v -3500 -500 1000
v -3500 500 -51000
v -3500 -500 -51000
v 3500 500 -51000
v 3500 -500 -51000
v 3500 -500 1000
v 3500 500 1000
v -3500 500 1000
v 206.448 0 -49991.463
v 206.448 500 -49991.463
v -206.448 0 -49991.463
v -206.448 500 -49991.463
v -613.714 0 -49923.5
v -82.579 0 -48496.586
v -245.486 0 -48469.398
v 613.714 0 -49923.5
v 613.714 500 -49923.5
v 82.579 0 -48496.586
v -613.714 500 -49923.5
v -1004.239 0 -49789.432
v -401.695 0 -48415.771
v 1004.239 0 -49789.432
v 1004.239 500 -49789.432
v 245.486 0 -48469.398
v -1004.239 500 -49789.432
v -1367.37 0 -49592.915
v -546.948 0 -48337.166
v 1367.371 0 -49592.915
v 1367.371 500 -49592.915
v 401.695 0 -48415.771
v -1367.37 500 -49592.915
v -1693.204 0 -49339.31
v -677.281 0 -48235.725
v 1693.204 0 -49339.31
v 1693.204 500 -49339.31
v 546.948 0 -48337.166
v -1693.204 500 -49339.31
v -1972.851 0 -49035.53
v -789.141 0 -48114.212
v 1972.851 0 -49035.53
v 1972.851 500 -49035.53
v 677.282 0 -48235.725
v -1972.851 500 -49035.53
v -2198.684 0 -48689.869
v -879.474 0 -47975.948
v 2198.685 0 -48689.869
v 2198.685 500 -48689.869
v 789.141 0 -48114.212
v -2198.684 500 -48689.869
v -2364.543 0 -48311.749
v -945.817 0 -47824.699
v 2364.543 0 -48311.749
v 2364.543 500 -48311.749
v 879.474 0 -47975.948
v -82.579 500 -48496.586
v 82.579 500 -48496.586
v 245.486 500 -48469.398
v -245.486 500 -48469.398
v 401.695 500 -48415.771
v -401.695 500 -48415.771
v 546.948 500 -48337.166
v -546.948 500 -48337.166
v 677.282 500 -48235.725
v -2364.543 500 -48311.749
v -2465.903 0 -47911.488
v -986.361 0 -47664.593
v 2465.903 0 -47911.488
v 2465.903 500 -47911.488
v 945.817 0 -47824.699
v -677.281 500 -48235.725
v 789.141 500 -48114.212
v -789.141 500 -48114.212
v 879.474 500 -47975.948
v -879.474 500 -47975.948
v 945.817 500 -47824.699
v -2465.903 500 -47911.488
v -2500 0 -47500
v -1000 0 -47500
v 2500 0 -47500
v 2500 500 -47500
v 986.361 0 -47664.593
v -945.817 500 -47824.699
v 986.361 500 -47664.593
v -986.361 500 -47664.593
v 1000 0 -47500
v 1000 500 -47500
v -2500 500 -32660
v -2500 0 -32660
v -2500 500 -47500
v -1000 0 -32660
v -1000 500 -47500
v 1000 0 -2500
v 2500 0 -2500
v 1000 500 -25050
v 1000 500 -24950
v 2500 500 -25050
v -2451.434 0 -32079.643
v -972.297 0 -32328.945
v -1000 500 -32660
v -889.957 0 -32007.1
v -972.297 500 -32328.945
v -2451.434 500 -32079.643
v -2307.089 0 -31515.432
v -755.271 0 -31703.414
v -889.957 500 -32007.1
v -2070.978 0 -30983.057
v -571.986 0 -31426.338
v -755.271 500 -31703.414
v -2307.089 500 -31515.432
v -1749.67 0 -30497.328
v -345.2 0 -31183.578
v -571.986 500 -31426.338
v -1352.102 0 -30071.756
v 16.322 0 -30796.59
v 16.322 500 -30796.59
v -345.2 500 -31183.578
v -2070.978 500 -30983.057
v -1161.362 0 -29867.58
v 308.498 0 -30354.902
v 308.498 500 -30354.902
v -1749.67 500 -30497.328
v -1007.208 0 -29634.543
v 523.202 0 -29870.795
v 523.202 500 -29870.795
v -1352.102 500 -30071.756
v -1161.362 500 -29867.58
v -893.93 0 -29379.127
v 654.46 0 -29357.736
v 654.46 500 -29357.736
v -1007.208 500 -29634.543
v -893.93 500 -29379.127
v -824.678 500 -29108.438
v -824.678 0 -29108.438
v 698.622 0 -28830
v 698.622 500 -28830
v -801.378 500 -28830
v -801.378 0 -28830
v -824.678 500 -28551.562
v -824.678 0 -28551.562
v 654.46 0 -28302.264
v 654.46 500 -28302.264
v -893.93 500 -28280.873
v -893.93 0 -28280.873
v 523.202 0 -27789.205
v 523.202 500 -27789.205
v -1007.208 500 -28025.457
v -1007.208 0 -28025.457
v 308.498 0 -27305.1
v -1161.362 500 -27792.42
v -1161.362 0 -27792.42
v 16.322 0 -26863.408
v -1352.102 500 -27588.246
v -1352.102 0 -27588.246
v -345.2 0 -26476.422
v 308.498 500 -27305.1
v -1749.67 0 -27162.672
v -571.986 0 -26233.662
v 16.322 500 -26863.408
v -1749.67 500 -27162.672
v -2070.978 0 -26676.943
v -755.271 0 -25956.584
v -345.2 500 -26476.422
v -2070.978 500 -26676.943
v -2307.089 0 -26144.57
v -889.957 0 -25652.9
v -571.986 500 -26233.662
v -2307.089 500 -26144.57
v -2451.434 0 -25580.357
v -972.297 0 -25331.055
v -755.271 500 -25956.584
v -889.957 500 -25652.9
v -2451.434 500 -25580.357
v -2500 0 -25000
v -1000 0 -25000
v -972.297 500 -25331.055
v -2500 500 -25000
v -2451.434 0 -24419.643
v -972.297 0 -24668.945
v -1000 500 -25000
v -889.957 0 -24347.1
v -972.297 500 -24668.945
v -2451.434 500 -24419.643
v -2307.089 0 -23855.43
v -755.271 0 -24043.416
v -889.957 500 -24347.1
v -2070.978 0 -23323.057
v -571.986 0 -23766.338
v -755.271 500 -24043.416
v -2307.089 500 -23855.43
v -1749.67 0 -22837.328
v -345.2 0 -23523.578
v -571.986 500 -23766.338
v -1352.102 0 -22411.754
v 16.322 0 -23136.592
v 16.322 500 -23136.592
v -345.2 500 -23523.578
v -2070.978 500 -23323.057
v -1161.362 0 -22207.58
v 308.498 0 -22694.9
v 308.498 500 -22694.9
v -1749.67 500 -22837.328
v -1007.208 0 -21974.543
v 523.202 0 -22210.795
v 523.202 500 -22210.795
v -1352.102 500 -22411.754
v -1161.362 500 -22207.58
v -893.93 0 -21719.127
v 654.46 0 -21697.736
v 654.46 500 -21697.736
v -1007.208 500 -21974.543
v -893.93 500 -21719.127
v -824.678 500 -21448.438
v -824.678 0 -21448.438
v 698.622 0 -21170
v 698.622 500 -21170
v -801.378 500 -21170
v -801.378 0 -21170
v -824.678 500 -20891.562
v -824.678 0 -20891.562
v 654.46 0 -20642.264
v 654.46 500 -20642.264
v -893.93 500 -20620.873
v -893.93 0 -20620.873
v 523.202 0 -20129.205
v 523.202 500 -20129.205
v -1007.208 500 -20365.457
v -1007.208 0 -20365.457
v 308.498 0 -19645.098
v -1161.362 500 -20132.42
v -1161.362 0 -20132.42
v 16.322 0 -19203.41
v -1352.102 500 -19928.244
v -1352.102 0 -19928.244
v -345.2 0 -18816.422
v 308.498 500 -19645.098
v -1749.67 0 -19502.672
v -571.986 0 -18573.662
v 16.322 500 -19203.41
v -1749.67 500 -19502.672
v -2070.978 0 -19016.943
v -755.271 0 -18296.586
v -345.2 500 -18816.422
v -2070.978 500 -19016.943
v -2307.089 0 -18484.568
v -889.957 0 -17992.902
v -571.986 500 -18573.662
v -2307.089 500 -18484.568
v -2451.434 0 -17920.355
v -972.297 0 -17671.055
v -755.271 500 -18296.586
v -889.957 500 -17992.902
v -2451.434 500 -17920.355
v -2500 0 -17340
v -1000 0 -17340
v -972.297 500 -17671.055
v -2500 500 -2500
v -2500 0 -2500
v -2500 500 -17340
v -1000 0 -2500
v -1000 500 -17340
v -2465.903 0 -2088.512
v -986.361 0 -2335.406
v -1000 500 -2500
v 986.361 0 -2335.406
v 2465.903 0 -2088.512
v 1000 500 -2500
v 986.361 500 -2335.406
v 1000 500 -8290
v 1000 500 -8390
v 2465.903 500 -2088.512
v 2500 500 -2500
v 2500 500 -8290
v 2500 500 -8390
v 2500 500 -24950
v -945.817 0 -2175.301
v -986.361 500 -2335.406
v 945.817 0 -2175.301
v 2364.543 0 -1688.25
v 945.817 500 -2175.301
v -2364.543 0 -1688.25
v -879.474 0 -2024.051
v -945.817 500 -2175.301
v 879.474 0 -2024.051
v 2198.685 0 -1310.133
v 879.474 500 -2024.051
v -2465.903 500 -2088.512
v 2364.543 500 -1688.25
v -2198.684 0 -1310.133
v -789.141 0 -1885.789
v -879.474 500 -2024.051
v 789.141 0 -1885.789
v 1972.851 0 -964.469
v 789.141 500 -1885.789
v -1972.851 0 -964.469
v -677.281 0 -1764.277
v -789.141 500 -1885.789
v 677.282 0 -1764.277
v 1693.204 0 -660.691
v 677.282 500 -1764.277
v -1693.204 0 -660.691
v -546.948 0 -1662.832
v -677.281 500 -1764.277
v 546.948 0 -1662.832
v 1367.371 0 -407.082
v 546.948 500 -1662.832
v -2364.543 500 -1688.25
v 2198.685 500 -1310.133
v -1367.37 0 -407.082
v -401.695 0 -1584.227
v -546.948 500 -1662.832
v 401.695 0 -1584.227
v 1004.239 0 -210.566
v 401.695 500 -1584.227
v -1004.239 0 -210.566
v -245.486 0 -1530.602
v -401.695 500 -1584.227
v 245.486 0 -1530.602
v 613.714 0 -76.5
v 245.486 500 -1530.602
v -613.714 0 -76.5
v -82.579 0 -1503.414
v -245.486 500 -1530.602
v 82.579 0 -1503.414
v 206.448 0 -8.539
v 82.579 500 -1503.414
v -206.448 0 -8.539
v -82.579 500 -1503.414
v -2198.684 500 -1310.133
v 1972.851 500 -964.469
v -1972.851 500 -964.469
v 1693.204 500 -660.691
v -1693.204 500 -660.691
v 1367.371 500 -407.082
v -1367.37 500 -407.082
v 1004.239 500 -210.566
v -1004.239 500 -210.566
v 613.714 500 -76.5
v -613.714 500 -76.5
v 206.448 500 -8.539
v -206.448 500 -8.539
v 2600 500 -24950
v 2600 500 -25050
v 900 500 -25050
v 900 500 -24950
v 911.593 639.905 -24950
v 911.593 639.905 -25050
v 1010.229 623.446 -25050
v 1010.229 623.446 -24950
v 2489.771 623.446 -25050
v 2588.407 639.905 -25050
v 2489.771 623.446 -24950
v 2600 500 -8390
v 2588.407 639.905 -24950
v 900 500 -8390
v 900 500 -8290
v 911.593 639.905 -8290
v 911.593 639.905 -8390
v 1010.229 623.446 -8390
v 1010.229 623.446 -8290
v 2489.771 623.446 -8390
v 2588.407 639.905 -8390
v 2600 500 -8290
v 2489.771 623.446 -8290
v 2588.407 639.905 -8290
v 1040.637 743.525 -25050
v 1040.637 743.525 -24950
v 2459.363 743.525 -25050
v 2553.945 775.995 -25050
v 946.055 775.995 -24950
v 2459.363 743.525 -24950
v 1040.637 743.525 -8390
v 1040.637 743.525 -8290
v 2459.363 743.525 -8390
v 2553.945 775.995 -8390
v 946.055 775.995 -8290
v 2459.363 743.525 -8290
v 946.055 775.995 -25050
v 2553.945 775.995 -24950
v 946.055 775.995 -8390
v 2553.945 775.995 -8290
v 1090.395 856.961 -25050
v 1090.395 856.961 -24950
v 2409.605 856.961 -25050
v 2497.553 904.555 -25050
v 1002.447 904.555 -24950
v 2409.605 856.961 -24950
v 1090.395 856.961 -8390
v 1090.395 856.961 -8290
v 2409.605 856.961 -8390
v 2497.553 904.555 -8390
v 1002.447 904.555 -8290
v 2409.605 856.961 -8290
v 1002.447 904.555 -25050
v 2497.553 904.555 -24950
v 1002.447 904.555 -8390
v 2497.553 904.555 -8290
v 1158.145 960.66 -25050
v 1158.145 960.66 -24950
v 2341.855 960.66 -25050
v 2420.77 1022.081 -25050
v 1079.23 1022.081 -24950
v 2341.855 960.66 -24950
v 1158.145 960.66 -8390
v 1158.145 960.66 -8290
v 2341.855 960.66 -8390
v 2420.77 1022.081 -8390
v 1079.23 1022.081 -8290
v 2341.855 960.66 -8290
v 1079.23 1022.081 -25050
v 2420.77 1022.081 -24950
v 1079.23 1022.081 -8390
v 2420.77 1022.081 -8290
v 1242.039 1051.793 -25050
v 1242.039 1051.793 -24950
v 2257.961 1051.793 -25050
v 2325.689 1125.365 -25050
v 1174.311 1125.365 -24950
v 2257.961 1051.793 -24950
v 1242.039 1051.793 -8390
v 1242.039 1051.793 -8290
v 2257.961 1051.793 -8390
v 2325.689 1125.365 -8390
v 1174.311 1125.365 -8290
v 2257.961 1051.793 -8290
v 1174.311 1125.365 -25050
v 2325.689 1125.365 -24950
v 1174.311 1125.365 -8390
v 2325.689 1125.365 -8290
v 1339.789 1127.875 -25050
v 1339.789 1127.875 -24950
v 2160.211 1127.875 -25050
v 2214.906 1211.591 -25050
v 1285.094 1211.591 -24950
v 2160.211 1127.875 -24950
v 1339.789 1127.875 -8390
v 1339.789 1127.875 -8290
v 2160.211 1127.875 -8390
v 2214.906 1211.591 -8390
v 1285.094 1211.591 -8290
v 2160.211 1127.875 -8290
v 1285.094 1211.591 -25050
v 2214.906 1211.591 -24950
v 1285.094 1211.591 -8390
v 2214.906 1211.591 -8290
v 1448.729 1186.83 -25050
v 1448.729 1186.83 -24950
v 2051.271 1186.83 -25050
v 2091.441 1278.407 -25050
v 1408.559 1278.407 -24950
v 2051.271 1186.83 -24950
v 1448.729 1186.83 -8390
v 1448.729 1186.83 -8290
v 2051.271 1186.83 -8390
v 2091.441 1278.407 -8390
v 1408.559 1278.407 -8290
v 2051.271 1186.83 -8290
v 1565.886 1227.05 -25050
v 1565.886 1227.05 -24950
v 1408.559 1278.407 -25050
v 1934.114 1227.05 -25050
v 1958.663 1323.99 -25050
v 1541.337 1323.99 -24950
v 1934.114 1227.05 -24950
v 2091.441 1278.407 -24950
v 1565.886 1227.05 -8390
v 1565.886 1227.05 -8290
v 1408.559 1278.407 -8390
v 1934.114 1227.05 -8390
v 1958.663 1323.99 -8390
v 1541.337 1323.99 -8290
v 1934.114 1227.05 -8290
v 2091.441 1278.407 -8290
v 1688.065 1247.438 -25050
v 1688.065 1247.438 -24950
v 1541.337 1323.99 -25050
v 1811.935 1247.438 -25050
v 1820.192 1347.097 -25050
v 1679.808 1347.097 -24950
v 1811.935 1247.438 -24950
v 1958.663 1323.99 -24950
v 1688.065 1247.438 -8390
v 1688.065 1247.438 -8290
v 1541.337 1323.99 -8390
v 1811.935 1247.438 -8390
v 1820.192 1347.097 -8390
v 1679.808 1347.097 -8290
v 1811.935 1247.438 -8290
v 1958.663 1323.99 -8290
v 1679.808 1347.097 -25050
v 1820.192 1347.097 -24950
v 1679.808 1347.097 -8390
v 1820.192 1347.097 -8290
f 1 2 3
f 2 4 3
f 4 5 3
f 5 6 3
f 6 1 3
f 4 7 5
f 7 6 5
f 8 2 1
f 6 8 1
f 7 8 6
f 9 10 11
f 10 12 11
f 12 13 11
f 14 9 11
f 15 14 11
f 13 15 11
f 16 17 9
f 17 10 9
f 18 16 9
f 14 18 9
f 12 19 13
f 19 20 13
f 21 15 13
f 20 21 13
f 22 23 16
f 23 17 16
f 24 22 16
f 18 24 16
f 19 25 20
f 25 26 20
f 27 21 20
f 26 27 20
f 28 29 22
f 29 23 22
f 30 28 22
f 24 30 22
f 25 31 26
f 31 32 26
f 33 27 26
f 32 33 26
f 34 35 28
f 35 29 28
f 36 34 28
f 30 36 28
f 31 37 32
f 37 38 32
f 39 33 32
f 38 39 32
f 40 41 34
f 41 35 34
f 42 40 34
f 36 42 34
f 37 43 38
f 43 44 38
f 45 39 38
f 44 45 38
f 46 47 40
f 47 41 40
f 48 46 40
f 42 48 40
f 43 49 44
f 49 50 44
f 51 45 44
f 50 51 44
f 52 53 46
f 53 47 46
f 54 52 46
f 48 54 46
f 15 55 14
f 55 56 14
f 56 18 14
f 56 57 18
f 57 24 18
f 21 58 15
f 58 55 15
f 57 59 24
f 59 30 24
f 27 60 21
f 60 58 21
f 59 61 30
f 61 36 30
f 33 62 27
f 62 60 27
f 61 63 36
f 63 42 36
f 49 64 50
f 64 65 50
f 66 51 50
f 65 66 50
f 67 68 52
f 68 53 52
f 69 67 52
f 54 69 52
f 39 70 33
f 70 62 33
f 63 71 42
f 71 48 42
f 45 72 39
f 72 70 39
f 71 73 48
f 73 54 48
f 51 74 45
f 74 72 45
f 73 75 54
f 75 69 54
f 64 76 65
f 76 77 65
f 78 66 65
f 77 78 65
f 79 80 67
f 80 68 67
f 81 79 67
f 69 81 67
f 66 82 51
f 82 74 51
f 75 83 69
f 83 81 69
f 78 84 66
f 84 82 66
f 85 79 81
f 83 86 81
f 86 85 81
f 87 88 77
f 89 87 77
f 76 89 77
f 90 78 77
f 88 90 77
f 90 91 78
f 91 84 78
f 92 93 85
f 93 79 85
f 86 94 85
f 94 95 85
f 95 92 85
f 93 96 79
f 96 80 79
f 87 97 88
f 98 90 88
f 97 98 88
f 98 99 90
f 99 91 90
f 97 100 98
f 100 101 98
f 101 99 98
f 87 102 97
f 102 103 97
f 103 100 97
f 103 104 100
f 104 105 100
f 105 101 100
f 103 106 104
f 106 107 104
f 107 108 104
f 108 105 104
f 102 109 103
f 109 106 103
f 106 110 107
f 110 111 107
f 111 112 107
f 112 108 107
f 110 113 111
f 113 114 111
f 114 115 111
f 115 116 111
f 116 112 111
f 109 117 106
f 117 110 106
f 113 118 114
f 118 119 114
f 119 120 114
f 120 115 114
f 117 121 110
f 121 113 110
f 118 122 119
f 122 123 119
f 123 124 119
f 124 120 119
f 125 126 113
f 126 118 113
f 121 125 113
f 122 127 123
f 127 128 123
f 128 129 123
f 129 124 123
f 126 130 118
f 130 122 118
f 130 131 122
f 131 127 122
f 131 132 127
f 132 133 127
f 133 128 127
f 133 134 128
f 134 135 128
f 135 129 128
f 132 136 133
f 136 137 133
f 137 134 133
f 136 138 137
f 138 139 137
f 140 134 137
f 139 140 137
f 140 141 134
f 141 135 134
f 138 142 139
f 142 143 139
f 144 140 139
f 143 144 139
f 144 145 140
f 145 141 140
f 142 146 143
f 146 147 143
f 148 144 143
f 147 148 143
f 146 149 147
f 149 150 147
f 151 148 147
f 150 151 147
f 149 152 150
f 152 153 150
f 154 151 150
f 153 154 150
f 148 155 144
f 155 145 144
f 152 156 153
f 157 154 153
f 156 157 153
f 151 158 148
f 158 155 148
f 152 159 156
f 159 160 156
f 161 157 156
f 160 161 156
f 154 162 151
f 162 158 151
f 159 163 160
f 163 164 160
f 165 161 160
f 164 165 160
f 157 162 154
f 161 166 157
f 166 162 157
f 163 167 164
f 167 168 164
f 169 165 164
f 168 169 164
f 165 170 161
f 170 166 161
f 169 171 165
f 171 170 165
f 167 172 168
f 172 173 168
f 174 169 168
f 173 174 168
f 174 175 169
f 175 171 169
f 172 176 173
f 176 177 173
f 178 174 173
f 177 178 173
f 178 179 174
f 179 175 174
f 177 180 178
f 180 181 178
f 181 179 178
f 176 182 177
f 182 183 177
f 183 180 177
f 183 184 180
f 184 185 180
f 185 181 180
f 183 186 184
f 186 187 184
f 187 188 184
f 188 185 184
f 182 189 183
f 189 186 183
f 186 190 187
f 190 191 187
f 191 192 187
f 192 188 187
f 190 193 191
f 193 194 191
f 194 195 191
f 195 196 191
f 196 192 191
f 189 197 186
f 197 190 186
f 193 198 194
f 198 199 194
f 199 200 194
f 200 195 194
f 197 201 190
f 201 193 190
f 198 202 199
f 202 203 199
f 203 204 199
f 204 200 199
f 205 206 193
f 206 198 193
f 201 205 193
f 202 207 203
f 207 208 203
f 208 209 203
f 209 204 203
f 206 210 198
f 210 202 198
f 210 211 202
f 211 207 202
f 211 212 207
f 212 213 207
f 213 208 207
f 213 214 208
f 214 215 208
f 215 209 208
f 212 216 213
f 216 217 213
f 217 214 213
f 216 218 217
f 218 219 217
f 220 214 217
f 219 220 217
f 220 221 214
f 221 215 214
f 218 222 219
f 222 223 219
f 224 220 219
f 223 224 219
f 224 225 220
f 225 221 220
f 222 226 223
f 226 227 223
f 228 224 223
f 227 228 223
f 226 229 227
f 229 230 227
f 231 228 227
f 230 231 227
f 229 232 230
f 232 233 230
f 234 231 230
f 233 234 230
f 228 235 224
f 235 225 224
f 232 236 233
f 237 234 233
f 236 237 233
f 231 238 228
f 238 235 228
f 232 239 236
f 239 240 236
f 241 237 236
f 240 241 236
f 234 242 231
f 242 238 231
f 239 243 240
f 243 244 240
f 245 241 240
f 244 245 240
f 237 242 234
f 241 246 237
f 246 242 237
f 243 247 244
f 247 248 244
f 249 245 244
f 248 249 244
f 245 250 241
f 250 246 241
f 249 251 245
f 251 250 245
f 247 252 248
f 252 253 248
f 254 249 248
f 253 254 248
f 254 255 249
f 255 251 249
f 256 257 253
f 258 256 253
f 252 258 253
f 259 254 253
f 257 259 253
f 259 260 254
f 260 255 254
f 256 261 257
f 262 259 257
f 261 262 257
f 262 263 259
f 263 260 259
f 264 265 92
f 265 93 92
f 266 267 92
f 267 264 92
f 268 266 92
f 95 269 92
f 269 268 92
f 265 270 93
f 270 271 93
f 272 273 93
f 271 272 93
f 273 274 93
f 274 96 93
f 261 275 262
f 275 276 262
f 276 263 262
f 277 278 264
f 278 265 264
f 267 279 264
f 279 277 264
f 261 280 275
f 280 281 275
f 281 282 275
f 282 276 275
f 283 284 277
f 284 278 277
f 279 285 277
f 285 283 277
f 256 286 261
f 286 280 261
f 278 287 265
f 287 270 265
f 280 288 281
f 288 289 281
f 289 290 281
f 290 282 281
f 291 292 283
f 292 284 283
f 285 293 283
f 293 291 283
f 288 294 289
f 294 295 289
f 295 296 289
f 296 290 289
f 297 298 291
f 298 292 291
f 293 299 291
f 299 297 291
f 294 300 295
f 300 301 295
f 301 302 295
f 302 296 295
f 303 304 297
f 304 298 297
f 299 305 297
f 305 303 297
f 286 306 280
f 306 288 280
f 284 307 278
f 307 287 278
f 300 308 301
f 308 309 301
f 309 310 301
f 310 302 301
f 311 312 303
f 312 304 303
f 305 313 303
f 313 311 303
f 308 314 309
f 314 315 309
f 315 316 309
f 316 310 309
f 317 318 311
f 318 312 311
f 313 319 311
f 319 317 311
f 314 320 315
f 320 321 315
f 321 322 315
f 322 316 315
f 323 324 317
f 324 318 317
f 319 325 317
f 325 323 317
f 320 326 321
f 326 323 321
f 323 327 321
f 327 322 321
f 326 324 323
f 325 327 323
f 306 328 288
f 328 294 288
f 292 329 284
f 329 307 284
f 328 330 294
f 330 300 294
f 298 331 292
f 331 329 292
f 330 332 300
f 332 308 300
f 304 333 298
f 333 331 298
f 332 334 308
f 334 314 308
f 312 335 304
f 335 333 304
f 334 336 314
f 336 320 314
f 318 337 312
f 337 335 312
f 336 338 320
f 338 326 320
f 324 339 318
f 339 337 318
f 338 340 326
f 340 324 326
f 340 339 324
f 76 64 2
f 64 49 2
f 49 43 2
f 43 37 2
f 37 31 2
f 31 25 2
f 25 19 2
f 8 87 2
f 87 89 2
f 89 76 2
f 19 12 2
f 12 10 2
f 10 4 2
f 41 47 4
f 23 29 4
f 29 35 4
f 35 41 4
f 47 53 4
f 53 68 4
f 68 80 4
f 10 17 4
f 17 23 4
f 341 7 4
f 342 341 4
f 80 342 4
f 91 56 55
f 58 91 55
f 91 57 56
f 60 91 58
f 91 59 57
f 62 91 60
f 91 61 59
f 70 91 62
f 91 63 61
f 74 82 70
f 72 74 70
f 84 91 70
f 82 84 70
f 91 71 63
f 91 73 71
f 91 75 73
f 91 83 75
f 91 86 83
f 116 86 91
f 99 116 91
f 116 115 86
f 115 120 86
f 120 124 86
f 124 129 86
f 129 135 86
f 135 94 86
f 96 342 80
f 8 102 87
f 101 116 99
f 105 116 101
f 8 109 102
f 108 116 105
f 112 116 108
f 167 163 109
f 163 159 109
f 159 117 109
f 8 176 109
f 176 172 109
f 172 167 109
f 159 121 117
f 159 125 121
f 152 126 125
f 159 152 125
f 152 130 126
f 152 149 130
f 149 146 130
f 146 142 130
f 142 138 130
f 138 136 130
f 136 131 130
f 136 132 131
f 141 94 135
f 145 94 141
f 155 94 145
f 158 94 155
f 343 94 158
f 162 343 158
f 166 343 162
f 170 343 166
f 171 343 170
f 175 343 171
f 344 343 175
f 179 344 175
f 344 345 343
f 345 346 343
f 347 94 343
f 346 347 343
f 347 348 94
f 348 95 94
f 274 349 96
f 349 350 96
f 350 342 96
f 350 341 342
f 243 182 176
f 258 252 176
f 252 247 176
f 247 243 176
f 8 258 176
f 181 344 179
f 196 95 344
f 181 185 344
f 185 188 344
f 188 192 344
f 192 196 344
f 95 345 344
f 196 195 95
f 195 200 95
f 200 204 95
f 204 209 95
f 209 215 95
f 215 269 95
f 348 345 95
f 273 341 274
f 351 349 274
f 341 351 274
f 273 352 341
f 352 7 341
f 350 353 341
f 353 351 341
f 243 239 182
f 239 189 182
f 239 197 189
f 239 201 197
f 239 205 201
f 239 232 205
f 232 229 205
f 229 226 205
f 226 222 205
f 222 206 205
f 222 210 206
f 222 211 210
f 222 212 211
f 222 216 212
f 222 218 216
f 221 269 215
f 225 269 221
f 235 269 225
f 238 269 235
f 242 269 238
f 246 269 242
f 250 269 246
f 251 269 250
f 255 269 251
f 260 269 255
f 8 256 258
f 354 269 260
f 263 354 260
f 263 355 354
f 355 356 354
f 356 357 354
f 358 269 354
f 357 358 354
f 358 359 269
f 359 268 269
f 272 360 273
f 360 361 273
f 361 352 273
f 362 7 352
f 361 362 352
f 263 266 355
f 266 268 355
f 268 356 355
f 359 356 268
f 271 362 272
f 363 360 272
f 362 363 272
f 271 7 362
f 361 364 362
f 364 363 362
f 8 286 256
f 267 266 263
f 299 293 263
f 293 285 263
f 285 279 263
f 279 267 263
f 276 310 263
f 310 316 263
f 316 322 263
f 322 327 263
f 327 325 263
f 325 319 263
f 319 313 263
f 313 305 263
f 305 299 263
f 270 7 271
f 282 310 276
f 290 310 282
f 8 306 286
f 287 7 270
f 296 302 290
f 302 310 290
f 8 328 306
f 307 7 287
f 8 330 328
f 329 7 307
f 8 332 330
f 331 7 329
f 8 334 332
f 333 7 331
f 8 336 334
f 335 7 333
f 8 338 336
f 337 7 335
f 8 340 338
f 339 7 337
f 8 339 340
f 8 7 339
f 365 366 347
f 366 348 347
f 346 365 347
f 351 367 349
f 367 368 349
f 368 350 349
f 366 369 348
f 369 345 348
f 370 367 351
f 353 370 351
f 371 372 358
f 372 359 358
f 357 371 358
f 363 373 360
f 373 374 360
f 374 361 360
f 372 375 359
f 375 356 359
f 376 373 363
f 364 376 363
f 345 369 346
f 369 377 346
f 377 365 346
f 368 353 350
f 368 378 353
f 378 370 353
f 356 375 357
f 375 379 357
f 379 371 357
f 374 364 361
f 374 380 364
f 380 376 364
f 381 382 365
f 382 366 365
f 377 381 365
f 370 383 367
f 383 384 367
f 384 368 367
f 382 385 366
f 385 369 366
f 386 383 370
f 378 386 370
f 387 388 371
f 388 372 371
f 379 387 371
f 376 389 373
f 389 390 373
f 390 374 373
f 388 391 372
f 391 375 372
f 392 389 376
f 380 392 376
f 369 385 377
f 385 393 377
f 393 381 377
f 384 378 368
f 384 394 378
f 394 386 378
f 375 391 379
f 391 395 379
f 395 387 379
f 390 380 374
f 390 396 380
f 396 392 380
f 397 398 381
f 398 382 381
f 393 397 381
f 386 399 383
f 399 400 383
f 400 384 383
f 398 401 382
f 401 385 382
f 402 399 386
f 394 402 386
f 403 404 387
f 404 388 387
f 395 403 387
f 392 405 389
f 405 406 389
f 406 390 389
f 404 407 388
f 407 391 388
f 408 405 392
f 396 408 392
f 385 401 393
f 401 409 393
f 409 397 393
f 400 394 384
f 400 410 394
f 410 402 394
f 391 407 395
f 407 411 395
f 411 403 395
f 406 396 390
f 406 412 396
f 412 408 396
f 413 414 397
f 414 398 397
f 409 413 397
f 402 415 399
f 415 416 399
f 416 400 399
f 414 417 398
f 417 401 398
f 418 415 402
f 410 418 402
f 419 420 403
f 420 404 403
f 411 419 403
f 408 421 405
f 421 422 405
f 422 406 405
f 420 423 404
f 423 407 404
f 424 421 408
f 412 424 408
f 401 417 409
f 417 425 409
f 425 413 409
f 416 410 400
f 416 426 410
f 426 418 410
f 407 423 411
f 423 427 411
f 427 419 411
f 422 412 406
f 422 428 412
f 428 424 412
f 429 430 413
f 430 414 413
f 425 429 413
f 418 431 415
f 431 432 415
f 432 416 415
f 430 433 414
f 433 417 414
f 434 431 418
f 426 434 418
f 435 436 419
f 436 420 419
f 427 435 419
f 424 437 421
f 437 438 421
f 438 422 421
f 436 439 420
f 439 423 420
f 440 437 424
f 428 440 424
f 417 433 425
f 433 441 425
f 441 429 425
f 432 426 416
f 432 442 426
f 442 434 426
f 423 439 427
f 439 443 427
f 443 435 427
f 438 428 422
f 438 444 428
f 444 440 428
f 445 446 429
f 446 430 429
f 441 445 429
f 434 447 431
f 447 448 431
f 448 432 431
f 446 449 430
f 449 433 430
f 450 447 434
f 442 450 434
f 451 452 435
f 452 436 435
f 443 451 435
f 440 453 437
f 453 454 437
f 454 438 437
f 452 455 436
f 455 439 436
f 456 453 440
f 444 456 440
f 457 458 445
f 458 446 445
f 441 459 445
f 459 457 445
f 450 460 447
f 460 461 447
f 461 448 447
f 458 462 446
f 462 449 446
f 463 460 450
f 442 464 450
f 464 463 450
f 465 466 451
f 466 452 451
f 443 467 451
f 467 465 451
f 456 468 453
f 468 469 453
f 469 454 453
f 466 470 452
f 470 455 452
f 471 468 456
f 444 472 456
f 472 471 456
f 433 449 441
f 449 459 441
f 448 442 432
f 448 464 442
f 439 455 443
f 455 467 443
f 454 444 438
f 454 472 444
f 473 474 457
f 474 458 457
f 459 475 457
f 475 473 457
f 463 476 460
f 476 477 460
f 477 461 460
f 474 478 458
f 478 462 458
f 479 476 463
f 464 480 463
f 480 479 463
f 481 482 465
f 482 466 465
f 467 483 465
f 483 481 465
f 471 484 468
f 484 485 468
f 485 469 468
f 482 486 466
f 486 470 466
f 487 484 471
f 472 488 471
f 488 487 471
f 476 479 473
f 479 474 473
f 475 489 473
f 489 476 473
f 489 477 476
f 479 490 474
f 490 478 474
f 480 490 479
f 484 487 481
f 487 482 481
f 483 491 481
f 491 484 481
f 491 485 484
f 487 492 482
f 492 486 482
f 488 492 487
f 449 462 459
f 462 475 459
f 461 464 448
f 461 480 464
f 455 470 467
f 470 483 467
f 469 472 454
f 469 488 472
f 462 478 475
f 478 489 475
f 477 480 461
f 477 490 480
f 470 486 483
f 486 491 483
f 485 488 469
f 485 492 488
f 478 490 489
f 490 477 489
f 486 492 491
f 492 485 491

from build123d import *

# Parameters (mm, degrees)
SKETCH1_W           = 7000
SKETCH1_H           = 52000
BOSS_EXTRUDE1_DEPTH = 500
CUT_EXTRUDE1_DEPTH  = 500
BOSS_EXTRUDE2_DEPTH = 50
LPATTERN1_COUNT     = 2
LPATTERN1_PITCH     = 16660


with BuildPart() as part:
    # Sketch1 → Boss-Extrude1 (new, symmetric)
    with BuildSketch(Plane(origin=(0, 0, 0), x_dir=(1, 0, 0), z_dir=(0, 1, 0))):
        with Locations((0, 25000)):
            Rectangle(SKETCH1_W, SKETCH1_H)
    extrude(amount=BOSS_EXTRUDE1_DEPTH, both=True)

    # Sketch2 → Cut-Extrude1 (cut)
    with BuildSketch(Plane(origin=(0, 500, 0), x_dir=(1, 0, 0), z_dir=(0, 1, 0))):
        with BuildLine():
            Line((2500, 2500), (2500, 47500))
            ThreePointArc((2500, 47500), (0, 50000), (-2500, 47500))
            Line((-2500, 47500), (-2500, 32660))
            ThreePointArc((-2500, 32660), (-2200.151504292, 31244.31293804), (-1352.101905874, 30071.755537993))
            ThreePointArc((-1352.101905874, 30071.755537993), (-801.37772338, 28830), (-1352.101905874, 27588.244462007))
            ThreePointArc((-1352.101905874, 27588.244462007), (-2500, 25000), (-1352.101905874, 22411.755537993))
            ThreePointArc((-1352.101905874, 22411.755537993), (-801.37772338, 21170), (-1352.101905874, 19928.244462007))
            ThreePointArc((-1352.101905874, 19928.244462007), (-2200.151504292, 18755.68706196), (-2500, 17340))
            Line((-2500, 17340), (-2500, 2500))
            ThreePointArc((-2500, 2500), (0, 0), (2500, 2500))
        make_face()
        with BuildLine():
            Line((1000, 2500), (1000, 47500))
            ThreePointArc((1000, 47500), (0, 48500), (-1000, 47500))
            Line((-1000, 47500), (-1000, 32660))
            ThreePointArc((-1000, 32660), (-828.956274311, 31852.444207815), (-345.200094245, 31183.57779975))
            ThreePointArc((-345.200094245, 31183.57779975), (698.62227662, 28830), (-345.200094245, 26476.42220025))
            ThreePointArc((-345.200094245, 26476.42220025), (-1000, 25000), (-345.200094245, 23523.57779975))
            ThreePointArc((-345.200094245, 23523.57779975), (698.62227662, 21170), (-345.200094245, 18816.42220025))
            ThreePointArc((-345.200094245, 18816.42220025), (-828.956274311, 18147.555792185), (-1000, 17340))
            Line((-1000, 17340), (-1000, 2500))
            ThreePointArc((-1000, 2500), (0, 1500), (1000, 2500))
        make_face(mode=Mode.SUBTRACT)
    extrude(amount=-CUT_EXTRUDE1_DEPTH, mode=Mode.SUBTRACT)

    # Sketch3 → Boss-Extrude2 (add, symmetric)
    with BuildSketch(Plane(origin=(0, 0, -25000), x_dir=(-1, 0, 0), z_dir=(0, 0, -1))):
        with BuildLine():
            Line((-1000, 500), (-900, 500))
            ThreePointArc((-900, 500), (-1750, 1350), (-2600, 500))
            Line((-2600, 500), (-2500, 500))
            ThreePointArc((-2500, 500), (-1750, 1250), (-1000, 500))
        make_face()
    boss_extrude2 = extrude(amount=BOSS_EXTRUDE2_DEPTH, both=True)

    # LPattern1: Boss-Extrude2 ×2
    with Locations(*[(0, 0, i * LPATTERN1_PITCH) for i in range(1, LPATTERN1_COUNT)]):
        add(boss_extrude2)


solid = part.part
